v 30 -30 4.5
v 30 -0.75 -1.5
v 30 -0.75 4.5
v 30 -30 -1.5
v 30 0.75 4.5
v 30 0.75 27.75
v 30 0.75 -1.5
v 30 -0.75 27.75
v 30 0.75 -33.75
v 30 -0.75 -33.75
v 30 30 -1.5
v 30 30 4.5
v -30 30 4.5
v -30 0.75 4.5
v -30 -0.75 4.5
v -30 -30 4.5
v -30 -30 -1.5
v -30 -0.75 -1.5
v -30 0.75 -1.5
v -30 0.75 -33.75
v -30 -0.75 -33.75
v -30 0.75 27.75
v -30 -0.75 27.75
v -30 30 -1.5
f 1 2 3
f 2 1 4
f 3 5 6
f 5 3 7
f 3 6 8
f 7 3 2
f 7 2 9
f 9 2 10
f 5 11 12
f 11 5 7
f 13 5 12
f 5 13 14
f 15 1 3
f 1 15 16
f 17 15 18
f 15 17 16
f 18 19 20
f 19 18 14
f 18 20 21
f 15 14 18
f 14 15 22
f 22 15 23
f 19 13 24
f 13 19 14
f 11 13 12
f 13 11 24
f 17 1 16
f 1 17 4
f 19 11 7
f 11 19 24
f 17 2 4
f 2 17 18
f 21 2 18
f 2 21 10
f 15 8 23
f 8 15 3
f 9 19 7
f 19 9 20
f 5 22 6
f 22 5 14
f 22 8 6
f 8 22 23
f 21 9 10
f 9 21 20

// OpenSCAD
// Define parameters for the flat plates
plate_width = 60;  // Adjusted width to match the original model
plate_height = 60; // Adjusted height to match the original model
plate_thickness = 1.5; // Reduced thickness to match the original model
plate_spacing = 0; // Reduced spacing to eliminate gaps between plates

// Module to create a flat plate
module flat_plate() {
    cube([plate_width, plate_height, plate_thickness], center = true);
}

// Module to create a tilted flat plate
module tilted_plate(angle) {
    rotate([angle, 0, 0]) flat_plate();
}

// Assemble the layers based on the graph_dict
module assembly() {
    // Layer 1: Topmost flat plate (horizontal orientation)
    translate([0, 0, plate_thickness * 2.5]) flat_plate();
    
    // Layer 2: Second flat plate (horizontal orientation)
    translate([0, 0, plate_thickness * 1.5]) flat_plate();
    
    // Layer 3: Third flat plate (horizontal orientation)
    translate([0, 0, plate_thickness * 0.5]) flat_plate();
    
    // Layer 4: Fourth flat plate (horizontal orientation)
    translate([0, 0, -plate_thickness * 0.5]) flat_plate();
    
    // Layer 5: Fifth flat plate (vertical orientation, aligned)
    translate([0, 0, -plate_thickness * 1.5]) rotate([90, 0, 0]) flat_plate();
    
    // Layer 6: Bottommost flat plate (vertical orientation, aligned)
    translate([0, 0, -plate_thickness * 2.5]) rotate([90, 0, 0]) flat_plate();
}

// Render the assembly
assembly();
